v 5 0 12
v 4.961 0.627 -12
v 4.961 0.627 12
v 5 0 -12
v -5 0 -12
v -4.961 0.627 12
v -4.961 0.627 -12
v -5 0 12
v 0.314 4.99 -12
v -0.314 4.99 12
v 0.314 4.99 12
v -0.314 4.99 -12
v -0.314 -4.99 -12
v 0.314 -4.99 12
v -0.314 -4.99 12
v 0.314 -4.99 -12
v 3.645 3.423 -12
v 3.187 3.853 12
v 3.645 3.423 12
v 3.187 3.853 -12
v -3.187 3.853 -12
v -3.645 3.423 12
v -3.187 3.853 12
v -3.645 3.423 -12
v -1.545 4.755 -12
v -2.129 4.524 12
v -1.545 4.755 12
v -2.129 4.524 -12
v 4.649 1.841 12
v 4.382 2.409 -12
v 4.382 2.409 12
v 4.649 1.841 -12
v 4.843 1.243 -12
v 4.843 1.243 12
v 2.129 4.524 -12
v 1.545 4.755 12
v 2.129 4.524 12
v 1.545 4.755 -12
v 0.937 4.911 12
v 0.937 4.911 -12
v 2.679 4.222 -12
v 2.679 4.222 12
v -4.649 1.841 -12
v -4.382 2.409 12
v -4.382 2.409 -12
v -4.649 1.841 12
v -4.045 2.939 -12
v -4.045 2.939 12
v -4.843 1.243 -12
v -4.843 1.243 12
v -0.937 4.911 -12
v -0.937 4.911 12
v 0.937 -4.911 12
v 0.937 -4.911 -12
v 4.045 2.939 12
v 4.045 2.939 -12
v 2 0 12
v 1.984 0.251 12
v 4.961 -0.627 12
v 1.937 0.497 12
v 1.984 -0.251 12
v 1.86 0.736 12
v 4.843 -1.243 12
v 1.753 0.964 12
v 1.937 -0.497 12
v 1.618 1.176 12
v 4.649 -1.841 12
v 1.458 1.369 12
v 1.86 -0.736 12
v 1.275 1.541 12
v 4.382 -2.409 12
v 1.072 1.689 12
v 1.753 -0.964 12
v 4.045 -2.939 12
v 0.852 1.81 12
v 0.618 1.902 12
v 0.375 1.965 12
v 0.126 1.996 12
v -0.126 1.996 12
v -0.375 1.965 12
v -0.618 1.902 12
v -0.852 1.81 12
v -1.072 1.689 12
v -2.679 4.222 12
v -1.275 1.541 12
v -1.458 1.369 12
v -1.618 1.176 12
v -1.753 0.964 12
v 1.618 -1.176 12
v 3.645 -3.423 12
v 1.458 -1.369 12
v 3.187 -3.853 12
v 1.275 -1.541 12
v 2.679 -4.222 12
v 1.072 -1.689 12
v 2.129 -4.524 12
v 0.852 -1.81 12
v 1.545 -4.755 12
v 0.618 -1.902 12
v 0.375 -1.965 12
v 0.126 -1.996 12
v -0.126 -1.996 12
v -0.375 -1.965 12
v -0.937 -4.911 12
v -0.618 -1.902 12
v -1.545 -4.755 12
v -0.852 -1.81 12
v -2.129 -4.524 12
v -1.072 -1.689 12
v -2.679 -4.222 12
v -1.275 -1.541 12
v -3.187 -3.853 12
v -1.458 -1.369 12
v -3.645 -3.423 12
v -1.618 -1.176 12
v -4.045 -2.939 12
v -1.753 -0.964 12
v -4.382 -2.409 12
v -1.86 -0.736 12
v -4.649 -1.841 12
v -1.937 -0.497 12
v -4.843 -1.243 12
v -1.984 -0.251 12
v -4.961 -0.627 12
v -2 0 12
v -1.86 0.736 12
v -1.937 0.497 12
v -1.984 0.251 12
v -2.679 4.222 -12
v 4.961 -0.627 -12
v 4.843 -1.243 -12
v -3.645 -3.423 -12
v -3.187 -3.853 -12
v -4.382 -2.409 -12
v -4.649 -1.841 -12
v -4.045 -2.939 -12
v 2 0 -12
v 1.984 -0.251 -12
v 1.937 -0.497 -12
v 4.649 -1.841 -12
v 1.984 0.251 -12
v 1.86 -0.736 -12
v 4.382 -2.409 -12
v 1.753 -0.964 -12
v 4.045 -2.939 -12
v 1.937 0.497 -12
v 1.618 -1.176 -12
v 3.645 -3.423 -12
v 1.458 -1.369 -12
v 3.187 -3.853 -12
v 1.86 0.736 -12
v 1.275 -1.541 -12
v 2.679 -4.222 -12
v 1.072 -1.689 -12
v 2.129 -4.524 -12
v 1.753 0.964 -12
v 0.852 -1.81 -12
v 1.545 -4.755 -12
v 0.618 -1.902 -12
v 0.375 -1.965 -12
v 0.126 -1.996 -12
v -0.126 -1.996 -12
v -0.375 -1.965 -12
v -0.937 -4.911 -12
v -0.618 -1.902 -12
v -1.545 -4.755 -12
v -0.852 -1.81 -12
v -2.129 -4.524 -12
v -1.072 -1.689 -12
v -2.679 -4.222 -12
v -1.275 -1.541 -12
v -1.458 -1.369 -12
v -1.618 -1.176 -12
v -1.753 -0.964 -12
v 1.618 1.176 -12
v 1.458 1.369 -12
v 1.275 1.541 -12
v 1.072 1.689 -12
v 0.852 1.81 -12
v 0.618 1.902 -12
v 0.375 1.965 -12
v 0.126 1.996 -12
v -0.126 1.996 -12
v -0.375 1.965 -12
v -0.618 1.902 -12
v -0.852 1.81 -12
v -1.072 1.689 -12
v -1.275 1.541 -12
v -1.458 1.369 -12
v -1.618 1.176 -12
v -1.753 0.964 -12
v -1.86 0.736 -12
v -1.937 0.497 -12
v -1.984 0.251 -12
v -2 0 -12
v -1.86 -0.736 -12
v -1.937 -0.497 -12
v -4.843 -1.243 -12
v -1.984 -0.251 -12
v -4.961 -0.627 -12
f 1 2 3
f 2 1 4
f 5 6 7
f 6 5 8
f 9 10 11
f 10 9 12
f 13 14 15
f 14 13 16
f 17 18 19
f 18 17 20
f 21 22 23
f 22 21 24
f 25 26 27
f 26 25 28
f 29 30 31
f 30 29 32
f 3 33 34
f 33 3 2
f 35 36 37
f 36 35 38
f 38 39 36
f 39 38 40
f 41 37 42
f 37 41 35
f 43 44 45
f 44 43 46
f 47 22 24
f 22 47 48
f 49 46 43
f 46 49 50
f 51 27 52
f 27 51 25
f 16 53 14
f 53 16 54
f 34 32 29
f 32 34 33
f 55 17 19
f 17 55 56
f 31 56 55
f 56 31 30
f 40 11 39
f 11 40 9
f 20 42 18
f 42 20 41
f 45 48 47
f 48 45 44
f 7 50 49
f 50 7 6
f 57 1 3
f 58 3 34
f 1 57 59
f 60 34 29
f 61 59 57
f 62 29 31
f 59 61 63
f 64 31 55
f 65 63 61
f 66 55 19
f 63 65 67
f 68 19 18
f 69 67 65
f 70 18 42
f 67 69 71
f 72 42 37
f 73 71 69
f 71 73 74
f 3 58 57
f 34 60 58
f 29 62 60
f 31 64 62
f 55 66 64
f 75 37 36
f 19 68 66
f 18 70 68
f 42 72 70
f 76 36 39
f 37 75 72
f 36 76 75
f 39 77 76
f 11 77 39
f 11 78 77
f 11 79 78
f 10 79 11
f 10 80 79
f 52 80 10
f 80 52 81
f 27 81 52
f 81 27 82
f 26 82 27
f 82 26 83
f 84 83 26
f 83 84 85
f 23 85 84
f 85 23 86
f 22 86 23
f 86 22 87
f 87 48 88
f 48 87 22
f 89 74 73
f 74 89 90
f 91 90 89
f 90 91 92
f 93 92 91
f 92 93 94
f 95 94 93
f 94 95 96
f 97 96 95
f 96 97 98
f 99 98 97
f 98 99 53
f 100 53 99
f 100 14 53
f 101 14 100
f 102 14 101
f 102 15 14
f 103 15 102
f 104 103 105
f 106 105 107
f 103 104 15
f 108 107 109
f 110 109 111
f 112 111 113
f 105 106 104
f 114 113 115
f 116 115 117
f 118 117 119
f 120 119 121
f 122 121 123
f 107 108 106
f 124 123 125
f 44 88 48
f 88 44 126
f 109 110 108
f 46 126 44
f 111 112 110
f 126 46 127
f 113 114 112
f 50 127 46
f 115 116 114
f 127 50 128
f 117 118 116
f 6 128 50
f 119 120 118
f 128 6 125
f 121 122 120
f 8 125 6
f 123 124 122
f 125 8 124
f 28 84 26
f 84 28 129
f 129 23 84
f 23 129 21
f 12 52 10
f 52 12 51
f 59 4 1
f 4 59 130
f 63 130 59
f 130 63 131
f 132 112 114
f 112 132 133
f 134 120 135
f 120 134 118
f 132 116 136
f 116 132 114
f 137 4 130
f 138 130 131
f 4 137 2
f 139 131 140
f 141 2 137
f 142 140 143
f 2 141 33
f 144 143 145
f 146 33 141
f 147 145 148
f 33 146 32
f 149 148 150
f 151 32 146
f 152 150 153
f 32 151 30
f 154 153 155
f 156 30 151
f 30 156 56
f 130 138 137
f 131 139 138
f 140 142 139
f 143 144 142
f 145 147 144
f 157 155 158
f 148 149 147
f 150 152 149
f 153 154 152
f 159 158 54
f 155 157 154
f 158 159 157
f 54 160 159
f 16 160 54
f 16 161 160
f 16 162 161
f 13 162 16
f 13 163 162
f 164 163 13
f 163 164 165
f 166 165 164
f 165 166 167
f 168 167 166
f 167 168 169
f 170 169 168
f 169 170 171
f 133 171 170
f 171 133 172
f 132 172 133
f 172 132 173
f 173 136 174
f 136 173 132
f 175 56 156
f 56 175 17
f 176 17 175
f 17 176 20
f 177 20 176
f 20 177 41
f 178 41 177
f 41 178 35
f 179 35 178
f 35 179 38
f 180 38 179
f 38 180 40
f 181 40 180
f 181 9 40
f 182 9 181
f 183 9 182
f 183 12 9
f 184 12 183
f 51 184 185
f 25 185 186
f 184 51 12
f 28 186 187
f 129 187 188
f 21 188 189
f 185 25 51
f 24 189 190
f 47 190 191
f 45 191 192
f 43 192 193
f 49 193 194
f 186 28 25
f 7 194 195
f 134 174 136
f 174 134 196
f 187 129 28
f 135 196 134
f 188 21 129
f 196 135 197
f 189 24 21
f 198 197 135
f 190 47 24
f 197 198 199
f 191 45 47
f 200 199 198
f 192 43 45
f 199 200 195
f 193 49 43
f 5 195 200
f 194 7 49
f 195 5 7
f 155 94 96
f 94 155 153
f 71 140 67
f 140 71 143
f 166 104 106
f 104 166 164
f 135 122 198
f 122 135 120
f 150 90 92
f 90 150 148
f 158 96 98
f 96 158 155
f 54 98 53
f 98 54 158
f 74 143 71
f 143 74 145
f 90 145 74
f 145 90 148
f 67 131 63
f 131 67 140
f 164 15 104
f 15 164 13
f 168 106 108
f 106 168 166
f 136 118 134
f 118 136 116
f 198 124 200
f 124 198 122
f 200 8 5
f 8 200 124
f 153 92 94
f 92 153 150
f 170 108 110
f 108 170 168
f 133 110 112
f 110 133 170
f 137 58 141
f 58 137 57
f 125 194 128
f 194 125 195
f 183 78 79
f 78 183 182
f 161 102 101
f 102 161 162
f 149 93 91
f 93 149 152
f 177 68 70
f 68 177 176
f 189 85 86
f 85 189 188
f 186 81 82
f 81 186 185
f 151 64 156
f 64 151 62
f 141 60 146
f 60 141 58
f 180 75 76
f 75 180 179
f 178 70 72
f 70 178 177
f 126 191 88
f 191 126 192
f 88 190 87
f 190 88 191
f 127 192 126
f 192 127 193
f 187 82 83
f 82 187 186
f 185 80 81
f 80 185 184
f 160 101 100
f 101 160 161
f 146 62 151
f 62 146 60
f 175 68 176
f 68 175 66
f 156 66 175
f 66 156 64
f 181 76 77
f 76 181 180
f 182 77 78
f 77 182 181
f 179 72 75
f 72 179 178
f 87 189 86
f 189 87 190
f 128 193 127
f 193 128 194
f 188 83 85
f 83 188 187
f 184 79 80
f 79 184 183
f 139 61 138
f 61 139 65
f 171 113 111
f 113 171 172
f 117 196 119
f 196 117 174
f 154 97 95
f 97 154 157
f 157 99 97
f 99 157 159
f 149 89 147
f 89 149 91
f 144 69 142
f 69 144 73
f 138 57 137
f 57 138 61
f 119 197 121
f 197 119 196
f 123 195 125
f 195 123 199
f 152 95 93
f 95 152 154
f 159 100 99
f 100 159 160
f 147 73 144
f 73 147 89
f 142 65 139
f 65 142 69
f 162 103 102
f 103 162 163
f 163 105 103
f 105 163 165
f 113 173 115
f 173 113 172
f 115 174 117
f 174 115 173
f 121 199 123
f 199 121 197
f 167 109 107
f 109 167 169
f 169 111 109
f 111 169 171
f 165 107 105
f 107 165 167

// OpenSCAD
$fn = 50;


difference() {
	union() {
		translate(v = [0, 0, -12.0000000000]) {
			cylinder(h = 24, r = 5.0000000000);
		}
	}
	union() {
		translate(v = [0, 0, -100.0000000000]) {
			cylinder(h = 200, r = 2);
		}
	}
}
